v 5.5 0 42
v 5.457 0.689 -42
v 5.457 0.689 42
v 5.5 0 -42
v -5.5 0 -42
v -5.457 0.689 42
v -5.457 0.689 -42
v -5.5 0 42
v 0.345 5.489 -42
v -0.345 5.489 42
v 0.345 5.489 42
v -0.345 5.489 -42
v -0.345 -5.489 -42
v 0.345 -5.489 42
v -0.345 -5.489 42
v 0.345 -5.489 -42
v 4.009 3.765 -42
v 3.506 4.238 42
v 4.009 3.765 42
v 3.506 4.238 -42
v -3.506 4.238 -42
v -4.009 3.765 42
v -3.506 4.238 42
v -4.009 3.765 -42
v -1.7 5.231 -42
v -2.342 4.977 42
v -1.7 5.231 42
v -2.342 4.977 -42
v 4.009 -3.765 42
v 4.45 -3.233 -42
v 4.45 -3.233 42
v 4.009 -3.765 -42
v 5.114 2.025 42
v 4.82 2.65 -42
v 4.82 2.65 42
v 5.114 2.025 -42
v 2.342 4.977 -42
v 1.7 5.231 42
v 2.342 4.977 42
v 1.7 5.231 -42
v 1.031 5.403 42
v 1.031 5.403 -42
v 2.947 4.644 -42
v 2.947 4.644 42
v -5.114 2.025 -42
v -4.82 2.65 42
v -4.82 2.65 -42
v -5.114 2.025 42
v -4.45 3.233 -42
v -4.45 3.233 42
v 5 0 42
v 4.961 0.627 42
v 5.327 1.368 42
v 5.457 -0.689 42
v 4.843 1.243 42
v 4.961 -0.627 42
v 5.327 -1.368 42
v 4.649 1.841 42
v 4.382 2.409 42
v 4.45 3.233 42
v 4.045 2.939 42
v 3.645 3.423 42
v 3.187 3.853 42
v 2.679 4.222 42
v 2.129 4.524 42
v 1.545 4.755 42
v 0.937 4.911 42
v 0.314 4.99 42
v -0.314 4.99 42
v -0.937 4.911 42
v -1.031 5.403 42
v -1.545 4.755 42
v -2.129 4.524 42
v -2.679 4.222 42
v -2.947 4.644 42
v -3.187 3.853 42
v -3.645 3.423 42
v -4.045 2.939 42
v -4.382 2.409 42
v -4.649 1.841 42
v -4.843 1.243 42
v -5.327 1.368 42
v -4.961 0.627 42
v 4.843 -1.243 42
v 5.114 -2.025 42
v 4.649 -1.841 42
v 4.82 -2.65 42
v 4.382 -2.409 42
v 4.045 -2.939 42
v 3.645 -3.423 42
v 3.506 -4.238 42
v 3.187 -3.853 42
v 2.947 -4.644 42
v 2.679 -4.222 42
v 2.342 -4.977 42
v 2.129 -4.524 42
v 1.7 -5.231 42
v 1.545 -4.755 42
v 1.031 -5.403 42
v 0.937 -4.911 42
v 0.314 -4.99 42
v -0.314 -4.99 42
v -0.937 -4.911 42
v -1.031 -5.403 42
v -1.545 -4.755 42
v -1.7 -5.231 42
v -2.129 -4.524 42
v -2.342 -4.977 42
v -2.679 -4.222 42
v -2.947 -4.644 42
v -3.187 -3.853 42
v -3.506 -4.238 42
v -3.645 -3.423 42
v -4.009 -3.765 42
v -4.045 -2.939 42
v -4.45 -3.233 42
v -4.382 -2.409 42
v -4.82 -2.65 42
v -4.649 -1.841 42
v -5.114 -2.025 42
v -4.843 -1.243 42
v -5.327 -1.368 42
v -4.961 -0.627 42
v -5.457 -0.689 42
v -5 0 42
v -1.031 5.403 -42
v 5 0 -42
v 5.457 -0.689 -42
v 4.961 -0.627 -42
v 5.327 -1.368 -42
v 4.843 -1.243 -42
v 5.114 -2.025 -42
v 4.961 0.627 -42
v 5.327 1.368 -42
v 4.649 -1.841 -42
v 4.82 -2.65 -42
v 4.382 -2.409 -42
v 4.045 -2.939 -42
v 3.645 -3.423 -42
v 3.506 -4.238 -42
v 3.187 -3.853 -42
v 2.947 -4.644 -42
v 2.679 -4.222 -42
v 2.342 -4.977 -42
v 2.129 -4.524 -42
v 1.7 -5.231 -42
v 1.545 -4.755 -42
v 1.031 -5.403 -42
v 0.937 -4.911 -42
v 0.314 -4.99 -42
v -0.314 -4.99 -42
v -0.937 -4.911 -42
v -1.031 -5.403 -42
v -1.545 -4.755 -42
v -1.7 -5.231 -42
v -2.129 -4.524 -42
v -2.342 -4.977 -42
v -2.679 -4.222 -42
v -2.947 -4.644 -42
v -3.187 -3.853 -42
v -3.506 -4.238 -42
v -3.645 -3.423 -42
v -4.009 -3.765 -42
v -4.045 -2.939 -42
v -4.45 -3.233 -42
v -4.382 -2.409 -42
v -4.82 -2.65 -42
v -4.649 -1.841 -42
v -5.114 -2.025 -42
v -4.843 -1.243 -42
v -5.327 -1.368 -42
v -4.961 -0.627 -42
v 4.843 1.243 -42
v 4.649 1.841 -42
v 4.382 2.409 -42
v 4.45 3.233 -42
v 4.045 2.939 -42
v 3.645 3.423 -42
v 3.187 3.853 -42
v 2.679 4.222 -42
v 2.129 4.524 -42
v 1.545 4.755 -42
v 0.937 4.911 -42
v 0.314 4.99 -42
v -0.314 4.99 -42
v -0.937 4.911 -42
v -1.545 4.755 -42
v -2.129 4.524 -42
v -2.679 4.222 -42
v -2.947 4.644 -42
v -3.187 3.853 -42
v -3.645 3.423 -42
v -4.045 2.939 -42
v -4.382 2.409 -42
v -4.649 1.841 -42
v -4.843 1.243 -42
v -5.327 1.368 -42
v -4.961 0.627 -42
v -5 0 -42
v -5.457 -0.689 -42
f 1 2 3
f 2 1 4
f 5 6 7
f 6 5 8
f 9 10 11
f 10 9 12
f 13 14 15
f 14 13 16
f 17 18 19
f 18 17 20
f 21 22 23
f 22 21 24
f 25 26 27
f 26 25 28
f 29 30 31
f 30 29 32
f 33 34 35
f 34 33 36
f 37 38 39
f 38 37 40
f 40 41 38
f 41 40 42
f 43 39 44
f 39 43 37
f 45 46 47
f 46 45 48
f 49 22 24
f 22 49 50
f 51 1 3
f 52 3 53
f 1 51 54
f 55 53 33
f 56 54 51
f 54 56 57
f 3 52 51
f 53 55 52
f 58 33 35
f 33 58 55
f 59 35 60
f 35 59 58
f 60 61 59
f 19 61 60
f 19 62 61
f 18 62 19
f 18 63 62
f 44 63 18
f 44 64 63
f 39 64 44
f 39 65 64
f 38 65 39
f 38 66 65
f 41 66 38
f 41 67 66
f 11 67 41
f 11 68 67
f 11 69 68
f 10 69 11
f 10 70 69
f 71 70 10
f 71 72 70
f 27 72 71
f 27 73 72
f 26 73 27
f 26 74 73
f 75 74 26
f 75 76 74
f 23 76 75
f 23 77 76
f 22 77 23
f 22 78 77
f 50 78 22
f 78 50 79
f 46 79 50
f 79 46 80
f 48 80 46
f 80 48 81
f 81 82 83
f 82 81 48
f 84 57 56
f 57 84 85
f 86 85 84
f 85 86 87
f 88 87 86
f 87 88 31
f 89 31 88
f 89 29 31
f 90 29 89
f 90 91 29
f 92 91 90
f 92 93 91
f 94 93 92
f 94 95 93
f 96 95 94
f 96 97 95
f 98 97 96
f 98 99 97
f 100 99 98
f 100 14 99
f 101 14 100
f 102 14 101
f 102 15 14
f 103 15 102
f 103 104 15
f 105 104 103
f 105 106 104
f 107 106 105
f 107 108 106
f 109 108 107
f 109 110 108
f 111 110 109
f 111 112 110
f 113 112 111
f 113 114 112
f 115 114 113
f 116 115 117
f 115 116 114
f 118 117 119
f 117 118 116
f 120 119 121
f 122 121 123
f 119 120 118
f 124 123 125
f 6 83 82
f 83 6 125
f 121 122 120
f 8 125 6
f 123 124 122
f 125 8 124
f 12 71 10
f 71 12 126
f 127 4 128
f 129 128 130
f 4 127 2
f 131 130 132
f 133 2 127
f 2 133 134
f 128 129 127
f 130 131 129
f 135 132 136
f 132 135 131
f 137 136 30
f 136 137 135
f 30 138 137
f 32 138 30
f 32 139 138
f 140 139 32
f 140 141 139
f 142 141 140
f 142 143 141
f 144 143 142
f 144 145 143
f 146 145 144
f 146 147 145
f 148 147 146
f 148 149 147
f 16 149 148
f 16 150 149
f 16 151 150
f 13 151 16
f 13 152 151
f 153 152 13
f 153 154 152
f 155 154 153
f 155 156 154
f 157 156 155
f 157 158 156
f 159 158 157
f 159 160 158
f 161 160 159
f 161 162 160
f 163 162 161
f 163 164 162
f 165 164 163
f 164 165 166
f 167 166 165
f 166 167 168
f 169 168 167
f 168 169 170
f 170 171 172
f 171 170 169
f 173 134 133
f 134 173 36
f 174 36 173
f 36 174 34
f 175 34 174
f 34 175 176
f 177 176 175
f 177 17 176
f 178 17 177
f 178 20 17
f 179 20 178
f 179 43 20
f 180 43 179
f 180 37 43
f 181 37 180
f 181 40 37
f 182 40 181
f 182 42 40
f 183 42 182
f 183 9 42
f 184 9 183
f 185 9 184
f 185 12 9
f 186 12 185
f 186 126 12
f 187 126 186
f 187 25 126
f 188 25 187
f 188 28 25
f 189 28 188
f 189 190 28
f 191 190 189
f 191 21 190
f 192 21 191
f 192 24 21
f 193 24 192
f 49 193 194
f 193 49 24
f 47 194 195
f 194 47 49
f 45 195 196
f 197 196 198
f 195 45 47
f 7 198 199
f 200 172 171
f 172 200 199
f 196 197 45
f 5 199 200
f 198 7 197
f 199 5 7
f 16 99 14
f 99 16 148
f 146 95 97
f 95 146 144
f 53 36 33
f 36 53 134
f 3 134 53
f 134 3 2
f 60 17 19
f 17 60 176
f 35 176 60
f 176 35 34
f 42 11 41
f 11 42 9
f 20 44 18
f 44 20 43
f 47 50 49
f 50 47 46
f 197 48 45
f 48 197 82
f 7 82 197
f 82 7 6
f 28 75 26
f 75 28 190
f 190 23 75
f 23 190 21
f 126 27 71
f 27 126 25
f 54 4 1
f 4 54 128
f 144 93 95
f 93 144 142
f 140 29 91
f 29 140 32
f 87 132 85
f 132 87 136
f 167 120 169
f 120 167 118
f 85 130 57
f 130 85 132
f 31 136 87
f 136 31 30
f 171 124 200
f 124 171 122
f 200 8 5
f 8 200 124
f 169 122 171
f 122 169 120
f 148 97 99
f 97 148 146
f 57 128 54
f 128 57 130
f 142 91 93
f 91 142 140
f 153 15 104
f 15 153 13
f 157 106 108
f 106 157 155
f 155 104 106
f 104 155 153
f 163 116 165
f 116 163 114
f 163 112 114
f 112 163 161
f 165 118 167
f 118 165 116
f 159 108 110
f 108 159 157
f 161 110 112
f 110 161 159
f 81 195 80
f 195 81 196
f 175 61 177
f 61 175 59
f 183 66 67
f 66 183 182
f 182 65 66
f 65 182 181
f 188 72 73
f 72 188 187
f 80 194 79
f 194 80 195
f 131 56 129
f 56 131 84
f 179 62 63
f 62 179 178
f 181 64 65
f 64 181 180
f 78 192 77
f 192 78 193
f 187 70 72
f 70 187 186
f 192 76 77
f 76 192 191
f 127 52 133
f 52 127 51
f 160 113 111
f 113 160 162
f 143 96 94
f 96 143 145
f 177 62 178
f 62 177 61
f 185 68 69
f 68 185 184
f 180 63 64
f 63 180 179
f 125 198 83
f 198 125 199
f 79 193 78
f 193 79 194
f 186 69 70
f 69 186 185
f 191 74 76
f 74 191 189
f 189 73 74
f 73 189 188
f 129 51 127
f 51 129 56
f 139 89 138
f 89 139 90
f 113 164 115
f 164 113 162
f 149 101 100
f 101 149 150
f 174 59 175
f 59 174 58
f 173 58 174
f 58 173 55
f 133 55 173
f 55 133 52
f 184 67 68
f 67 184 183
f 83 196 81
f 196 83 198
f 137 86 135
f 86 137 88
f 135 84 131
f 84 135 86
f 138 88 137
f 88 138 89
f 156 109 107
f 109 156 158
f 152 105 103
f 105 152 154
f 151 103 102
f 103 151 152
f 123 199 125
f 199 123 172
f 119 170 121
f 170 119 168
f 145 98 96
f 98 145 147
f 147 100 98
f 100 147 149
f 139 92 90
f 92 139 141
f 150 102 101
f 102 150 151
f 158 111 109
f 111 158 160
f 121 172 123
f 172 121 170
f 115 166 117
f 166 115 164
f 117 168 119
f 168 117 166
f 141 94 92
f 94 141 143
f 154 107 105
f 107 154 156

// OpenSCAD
$fn = 50;


difference() {
	union() {
		translate(v = [0, 0, -42.0000000000]) {
			cylinder(h = 84, r = 5.5000000000);
		}
	}
	union() {
		translate(v = [0, 0, -100.0000000000]) {
			cylinder(h = 200, r = 5);
		}
	}
}
